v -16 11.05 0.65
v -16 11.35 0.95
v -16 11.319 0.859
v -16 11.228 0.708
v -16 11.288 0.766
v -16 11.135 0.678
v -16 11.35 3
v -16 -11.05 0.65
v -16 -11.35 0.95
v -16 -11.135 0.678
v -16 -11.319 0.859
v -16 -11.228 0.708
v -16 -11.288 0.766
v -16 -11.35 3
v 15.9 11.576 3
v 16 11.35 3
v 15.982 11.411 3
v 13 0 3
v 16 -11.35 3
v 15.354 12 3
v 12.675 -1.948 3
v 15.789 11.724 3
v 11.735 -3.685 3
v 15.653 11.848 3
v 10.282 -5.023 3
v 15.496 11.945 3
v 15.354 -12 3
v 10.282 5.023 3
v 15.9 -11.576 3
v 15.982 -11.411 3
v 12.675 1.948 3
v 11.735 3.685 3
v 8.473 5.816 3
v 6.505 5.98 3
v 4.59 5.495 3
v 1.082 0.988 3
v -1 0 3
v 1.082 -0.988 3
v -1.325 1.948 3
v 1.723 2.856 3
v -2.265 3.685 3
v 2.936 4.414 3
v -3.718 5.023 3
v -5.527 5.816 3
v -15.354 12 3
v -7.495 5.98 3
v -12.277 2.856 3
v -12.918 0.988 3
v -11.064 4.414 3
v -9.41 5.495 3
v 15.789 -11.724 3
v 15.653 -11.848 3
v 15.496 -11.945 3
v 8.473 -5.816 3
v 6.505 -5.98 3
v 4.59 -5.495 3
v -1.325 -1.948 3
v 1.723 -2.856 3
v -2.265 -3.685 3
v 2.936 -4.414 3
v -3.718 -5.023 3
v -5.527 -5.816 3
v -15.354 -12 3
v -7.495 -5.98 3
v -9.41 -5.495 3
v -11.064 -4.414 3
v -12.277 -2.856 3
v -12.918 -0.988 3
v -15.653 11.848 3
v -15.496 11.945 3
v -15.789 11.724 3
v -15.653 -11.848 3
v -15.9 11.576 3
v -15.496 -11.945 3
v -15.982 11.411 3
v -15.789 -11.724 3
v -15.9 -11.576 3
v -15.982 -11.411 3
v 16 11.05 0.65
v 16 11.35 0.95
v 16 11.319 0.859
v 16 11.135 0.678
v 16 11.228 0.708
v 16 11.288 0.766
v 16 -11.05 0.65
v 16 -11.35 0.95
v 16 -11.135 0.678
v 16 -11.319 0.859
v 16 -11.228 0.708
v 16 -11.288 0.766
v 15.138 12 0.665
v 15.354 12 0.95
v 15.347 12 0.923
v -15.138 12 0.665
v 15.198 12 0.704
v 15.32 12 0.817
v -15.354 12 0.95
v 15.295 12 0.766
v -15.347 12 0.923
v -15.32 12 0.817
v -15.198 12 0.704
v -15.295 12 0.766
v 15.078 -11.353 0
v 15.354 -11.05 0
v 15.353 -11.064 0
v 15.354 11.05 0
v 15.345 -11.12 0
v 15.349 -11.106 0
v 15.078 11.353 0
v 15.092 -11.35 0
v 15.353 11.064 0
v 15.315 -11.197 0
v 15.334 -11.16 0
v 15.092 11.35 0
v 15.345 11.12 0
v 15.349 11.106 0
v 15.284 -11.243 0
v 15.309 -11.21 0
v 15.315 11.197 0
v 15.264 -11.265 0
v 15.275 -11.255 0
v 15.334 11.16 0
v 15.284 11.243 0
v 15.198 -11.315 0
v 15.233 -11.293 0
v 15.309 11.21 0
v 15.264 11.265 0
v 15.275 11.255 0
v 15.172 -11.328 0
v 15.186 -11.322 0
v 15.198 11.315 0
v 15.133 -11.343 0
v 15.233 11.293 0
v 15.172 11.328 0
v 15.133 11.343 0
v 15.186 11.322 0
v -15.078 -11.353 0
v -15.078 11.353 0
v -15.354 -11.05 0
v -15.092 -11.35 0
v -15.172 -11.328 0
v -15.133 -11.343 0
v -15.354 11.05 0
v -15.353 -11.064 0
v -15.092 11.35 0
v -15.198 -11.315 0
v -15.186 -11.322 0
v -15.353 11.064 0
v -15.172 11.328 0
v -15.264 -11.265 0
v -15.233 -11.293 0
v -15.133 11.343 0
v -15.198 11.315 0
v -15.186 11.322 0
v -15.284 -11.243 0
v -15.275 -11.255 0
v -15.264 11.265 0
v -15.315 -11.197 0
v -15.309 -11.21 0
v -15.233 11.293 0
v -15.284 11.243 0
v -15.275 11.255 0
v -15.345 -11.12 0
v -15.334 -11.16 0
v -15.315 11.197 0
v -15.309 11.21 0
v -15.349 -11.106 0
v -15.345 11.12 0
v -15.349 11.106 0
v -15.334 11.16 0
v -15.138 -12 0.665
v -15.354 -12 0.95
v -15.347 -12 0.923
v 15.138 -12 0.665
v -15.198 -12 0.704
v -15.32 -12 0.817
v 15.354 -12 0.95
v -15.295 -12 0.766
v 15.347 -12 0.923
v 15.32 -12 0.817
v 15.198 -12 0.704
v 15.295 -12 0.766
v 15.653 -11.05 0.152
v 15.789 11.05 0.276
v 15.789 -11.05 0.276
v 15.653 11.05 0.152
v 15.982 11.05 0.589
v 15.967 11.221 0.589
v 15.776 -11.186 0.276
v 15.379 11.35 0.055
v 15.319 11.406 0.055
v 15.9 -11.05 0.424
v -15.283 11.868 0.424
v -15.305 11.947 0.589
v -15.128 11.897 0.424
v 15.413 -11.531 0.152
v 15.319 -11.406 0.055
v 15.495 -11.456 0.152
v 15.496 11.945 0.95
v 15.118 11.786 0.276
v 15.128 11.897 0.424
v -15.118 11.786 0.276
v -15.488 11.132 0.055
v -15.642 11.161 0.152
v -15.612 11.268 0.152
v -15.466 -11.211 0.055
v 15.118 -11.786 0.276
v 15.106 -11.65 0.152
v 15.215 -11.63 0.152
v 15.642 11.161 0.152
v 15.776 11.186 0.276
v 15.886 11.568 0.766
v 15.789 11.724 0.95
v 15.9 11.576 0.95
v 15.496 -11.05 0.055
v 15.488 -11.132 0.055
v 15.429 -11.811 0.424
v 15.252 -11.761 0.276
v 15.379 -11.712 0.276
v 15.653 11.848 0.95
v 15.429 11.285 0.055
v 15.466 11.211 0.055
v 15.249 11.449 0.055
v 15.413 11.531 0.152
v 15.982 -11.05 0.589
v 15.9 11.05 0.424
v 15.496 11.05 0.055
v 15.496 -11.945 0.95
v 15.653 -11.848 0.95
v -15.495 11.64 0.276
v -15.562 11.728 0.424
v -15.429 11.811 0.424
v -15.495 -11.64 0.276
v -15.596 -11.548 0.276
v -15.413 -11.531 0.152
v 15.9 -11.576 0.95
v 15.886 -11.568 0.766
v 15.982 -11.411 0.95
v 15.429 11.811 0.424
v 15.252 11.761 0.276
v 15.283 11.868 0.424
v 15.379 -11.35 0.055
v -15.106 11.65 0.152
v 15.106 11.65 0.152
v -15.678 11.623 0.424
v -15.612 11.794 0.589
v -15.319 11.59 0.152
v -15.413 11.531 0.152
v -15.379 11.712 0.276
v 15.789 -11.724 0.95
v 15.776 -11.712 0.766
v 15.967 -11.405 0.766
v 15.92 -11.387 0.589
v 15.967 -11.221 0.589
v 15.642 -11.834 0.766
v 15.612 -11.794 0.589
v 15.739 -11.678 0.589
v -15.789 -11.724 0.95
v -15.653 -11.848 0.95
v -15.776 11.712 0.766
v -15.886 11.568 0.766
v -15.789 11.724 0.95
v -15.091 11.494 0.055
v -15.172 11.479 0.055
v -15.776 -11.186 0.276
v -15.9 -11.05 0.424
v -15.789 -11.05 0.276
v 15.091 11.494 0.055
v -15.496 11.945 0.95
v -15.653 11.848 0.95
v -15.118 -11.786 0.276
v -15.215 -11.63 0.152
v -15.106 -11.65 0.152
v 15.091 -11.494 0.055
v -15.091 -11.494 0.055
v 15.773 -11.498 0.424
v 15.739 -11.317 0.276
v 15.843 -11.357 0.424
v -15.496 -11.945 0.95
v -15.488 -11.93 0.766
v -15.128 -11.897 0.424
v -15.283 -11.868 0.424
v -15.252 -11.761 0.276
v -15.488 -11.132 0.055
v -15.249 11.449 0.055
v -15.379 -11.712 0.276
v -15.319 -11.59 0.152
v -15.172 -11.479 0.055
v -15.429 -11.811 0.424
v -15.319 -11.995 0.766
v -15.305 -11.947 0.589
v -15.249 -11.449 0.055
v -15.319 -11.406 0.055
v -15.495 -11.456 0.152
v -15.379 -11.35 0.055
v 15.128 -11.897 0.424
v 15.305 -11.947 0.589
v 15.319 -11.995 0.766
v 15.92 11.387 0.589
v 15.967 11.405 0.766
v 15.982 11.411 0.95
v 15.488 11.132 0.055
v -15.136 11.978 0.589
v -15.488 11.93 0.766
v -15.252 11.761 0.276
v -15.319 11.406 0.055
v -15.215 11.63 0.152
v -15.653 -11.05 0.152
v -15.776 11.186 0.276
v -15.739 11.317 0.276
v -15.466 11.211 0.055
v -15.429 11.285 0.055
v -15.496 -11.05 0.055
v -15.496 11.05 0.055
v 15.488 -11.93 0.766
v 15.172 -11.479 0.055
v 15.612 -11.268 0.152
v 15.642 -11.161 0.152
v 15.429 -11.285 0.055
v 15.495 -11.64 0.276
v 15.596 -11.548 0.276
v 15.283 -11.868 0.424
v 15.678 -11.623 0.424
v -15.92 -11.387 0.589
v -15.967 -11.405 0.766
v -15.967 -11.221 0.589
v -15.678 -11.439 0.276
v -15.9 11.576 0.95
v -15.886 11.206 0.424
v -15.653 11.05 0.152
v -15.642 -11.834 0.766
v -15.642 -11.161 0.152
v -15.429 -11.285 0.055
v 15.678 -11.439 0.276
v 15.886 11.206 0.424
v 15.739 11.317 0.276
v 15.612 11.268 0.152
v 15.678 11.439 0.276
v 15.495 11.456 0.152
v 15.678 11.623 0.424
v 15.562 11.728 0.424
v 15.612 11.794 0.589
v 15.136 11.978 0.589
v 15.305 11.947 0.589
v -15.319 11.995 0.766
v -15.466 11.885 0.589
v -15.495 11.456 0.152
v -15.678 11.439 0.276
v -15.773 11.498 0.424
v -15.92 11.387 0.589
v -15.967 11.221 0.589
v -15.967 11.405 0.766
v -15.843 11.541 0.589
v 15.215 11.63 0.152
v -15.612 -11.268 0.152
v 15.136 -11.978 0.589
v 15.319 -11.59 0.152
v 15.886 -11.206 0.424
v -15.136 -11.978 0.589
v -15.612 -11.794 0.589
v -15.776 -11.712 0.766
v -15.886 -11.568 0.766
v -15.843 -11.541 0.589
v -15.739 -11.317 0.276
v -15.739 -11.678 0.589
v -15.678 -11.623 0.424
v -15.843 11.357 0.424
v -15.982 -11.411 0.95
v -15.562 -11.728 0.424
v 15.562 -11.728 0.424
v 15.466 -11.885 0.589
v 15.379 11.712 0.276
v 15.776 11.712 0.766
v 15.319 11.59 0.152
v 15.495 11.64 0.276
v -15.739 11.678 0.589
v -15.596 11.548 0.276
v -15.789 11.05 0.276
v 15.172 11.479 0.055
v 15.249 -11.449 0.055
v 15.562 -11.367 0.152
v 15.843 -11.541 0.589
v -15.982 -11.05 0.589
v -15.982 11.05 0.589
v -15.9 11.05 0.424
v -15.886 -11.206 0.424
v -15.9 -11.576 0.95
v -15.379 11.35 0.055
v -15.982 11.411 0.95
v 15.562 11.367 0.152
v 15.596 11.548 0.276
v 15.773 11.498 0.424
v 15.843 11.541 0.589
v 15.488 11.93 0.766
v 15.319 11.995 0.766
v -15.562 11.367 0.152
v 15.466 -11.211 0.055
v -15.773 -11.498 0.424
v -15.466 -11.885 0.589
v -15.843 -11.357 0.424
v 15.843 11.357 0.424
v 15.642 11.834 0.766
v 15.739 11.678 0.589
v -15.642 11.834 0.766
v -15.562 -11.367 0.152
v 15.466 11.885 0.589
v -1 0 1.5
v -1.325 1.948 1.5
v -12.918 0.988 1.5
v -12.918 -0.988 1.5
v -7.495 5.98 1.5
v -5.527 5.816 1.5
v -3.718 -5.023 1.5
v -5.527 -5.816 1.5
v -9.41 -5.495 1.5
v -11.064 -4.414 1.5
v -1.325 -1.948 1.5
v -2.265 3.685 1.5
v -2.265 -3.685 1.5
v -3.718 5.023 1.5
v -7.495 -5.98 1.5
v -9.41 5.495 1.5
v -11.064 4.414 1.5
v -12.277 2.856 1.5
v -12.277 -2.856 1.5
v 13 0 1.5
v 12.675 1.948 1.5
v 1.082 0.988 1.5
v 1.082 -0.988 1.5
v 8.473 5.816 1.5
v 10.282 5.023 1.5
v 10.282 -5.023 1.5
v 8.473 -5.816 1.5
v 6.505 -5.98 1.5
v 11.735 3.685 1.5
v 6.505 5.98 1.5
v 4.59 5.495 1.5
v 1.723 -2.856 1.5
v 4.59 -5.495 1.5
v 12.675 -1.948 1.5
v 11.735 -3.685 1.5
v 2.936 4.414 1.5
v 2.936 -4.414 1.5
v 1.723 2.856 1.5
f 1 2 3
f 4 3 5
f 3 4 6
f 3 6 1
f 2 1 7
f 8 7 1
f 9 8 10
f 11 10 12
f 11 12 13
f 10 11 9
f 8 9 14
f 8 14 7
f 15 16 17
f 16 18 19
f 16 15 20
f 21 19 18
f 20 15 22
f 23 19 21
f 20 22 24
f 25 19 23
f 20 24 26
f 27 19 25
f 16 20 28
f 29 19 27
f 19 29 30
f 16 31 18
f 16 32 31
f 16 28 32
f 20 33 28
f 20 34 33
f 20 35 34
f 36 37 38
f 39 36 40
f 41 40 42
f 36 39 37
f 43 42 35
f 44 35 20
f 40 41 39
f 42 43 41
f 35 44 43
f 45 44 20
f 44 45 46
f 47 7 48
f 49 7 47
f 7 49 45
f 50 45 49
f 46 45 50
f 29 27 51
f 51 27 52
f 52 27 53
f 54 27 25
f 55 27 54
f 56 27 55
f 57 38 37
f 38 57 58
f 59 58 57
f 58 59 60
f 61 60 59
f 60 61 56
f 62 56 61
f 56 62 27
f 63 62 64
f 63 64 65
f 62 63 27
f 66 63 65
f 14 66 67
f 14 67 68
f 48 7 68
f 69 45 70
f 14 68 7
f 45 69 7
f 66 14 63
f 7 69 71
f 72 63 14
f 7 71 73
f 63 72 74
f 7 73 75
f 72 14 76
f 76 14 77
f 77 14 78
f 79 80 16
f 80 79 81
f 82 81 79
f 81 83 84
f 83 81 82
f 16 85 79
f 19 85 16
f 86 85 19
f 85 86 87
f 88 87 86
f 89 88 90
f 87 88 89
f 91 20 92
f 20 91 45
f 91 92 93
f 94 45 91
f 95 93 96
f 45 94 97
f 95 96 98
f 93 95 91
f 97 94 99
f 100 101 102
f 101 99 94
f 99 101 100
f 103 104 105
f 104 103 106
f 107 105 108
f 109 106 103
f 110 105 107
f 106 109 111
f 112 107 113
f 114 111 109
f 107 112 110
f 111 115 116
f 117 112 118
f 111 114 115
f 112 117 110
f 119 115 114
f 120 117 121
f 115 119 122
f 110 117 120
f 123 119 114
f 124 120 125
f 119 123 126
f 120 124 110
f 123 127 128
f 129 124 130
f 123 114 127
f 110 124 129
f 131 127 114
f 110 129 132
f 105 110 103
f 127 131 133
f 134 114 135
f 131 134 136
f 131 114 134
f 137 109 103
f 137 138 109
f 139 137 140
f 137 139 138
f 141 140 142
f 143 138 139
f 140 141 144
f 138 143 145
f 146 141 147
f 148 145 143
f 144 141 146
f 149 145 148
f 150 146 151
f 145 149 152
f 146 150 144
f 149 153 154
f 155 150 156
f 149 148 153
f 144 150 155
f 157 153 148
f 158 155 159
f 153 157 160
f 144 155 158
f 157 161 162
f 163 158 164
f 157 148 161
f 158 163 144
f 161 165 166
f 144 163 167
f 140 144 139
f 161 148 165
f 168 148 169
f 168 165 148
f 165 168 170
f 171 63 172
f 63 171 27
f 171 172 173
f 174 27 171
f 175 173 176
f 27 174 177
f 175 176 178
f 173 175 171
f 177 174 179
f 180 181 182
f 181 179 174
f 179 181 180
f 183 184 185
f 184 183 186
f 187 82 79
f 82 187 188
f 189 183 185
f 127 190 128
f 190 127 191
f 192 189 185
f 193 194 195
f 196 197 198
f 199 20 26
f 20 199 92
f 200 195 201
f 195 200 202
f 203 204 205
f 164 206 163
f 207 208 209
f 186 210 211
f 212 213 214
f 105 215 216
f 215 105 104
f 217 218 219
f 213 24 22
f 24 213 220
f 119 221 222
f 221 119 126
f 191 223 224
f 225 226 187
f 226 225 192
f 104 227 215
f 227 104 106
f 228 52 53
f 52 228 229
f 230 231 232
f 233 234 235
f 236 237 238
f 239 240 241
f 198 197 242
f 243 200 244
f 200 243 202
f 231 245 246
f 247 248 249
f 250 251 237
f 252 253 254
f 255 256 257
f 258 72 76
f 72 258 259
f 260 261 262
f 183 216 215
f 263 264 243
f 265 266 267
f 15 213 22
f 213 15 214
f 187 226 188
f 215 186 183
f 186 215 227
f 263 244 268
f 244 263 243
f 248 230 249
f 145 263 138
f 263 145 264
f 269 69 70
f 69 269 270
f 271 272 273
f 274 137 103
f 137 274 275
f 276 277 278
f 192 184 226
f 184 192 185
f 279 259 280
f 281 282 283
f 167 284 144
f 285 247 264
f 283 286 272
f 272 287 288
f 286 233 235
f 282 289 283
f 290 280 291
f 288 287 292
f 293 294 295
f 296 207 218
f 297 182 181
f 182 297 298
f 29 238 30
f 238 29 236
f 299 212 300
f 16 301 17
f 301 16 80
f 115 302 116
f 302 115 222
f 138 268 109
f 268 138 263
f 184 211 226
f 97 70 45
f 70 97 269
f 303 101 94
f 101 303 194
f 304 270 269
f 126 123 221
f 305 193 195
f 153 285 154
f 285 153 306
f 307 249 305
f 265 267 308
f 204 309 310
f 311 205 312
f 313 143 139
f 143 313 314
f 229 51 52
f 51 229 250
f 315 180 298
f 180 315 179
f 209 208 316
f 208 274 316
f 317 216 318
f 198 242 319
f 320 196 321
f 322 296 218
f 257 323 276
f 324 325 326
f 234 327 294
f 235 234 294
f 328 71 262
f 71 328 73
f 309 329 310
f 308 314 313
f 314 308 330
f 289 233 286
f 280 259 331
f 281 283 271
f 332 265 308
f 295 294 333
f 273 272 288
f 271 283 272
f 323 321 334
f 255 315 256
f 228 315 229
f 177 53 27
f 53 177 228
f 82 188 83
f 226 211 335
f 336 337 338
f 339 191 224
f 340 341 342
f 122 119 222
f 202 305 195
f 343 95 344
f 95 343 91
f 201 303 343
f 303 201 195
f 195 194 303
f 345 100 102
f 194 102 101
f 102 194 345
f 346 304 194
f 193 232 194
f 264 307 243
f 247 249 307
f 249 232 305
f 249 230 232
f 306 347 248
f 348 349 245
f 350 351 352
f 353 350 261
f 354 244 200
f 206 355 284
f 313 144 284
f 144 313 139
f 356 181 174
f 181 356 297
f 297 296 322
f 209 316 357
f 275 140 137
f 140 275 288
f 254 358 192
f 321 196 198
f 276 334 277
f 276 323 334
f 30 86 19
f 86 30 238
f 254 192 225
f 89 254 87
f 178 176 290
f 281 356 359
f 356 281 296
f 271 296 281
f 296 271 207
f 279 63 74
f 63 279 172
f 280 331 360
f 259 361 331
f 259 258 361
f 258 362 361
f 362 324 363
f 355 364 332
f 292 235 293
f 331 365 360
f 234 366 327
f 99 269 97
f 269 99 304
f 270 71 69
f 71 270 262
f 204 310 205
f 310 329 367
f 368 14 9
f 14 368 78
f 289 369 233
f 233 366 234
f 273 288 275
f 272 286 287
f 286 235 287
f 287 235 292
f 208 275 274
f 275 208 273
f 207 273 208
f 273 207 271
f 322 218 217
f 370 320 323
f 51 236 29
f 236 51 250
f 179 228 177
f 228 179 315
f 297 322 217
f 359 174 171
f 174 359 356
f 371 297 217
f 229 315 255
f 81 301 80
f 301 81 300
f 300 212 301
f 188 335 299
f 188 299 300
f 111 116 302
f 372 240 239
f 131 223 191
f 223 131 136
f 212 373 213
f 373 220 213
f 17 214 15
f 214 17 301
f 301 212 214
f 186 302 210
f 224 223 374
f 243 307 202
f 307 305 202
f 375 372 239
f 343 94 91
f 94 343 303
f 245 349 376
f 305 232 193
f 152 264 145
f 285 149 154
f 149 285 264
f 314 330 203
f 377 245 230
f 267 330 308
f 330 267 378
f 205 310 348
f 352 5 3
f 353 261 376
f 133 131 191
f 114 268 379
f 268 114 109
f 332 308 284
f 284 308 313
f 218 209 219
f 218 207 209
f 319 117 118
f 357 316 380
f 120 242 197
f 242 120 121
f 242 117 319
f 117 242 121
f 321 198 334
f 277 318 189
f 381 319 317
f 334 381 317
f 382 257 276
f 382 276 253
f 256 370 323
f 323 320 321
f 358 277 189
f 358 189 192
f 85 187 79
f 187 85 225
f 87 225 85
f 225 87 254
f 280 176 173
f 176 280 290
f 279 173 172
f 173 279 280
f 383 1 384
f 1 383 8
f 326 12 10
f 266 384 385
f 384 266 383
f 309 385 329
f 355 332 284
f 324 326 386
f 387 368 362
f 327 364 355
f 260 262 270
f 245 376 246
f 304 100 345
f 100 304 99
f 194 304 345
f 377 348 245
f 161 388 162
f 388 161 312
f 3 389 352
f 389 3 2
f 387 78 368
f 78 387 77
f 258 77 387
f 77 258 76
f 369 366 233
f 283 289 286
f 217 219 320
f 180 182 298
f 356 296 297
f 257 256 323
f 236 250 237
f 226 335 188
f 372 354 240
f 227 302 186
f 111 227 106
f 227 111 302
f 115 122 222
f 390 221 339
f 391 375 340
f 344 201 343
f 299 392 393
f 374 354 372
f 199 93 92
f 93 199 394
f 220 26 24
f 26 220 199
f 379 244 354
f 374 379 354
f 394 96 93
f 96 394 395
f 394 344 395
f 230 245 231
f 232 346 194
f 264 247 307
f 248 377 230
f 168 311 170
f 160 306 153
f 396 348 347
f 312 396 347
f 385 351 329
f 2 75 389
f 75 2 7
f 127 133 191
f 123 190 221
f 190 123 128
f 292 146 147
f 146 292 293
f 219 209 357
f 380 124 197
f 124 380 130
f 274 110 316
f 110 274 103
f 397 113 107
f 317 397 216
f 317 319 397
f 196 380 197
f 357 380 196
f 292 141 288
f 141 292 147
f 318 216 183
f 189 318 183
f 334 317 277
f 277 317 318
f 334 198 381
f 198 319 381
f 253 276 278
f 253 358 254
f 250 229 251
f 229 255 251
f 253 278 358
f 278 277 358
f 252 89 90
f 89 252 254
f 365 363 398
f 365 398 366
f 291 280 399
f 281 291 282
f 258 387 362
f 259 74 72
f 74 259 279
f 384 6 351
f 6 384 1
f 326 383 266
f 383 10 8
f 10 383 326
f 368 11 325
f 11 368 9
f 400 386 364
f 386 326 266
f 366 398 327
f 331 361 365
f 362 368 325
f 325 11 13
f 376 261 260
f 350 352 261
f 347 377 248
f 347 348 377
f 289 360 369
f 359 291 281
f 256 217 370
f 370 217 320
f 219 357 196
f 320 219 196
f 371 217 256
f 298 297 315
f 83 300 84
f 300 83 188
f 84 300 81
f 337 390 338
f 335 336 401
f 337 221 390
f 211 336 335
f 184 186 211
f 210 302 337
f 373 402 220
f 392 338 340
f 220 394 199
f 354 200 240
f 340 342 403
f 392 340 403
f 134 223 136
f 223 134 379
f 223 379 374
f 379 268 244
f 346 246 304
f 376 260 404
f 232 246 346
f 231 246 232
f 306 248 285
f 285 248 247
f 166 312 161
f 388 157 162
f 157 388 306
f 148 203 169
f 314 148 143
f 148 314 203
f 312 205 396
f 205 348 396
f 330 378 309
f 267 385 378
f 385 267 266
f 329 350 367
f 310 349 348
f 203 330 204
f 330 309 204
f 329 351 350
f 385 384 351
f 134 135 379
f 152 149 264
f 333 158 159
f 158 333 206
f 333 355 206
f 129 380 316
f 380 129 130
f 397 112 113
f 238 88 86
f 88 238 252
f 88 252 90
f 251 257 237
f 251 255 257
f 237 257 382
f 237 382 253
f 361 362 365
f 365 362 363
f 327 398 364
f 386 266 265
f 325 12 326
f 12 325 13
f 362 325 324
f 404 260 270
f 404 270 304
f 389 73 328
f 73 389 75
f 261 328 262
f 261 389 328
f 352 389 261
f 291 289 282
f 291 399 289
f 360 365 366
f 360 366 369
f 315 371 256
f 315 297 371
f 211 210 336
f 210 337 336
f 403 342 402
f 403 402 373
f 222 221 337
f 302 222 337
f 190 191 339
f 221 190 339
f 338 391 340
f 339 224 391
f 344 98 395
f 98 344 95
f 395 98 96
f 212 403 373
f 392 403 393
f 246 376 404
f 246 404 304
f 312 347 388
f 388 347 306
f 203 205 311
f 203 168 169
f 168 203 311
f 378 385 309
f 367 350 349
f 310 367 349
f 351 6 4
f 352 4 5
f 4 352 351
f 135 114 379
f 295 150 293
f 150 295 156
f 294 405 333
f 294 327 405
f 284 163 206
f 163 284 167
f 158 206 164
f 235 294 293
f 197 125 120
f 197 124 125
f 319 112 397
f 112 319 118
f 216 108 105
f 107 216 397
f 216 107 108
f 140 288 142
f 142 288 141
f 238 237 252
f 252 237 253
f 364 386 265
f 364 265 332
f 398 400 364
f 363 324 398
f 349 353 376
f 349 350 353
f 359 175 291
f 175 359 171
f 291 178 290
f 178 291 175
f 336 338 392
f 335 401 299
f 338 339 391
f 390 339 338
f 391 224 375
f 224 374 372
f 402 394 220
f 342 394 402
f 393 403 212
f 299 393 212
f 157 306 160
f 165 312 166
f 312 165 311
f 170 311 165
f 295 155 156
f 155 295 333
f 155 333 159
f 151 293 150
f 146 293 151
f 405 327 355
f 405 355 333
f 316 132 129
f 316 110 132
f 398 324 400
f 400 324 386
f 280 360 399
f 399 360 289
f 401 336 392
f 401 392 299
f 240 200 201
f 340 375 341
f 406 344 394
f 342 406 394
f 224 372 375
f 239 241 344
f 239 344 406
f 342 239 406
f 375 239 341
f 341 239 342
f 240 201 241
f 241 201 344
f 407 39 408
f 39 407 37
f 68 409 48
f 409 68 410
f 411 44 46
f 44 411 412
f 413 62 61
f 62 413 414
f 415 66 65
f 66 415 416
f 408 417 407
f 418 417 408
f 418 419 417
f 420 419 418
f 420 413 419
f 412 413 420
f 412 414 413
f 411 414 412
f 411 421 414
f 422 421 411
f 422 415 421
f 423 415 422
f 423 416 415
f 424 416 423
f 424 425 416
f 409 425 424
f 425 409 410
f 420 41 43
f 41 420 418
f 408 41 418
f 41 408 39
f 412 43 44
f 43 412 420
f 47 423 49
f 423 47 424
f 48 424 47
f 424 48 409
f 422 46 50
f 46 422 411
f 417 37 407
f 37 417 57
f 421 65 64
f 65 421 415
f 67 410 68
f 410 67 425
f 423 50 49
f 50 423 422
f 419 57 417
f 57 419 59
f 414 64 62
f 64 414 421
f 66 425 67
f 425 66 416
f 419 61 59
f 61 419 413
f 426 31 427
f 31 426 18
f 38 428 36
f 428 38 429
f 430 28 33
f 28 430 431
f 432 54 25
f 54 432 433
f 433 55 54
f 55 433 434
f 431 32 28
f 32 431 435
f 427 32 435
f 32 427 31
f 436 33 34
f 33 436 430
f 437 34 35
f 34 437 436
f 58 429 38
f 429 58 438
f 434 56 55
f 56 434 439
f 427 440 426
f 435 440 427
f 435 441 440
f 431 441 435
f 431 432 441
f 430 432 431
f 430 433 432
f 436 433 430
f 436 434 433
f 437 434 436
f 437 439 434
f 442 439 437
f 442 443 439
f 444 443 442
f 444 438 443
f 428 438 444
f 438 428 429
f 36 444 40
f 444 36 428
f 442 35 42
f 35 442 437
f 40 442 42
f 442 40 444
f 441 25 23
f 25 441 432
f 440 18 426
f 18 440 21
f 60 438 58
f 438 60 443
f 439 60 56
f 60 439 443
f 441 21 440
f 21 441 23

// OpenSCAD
color("green")
difference(){
    intersection(){
        translate([0,0,1.5])
          cube([32,24,3],center=true);
        hull(){
            $fn = 34;
            translate([-15.05,-11.05,.95]) sphere(r=1);
            translate([-15.05,11.05,.95]) sphere(r=1);
            translate([15.05,-11.05,.95]) sphere(r=1);
            translate([15.05,11.05,.95]) sphere(r=1);
            
            translate([-15.05,-11.05,15.1]) sphere(r=1);
            translate([-15.05,11.05,15.1]) sphere(r=1);
            translate([15.05,-11.05,15.1]) sphere(r=1);
            translate([15.05,11.05,15.1]) sphere(r=1);
        };
    };
   translate([-7,0,1.5])
     cylinder(h=9,r=6);
   translate([7,0,1.5])
     cylinder(h=9,r=6);
};
